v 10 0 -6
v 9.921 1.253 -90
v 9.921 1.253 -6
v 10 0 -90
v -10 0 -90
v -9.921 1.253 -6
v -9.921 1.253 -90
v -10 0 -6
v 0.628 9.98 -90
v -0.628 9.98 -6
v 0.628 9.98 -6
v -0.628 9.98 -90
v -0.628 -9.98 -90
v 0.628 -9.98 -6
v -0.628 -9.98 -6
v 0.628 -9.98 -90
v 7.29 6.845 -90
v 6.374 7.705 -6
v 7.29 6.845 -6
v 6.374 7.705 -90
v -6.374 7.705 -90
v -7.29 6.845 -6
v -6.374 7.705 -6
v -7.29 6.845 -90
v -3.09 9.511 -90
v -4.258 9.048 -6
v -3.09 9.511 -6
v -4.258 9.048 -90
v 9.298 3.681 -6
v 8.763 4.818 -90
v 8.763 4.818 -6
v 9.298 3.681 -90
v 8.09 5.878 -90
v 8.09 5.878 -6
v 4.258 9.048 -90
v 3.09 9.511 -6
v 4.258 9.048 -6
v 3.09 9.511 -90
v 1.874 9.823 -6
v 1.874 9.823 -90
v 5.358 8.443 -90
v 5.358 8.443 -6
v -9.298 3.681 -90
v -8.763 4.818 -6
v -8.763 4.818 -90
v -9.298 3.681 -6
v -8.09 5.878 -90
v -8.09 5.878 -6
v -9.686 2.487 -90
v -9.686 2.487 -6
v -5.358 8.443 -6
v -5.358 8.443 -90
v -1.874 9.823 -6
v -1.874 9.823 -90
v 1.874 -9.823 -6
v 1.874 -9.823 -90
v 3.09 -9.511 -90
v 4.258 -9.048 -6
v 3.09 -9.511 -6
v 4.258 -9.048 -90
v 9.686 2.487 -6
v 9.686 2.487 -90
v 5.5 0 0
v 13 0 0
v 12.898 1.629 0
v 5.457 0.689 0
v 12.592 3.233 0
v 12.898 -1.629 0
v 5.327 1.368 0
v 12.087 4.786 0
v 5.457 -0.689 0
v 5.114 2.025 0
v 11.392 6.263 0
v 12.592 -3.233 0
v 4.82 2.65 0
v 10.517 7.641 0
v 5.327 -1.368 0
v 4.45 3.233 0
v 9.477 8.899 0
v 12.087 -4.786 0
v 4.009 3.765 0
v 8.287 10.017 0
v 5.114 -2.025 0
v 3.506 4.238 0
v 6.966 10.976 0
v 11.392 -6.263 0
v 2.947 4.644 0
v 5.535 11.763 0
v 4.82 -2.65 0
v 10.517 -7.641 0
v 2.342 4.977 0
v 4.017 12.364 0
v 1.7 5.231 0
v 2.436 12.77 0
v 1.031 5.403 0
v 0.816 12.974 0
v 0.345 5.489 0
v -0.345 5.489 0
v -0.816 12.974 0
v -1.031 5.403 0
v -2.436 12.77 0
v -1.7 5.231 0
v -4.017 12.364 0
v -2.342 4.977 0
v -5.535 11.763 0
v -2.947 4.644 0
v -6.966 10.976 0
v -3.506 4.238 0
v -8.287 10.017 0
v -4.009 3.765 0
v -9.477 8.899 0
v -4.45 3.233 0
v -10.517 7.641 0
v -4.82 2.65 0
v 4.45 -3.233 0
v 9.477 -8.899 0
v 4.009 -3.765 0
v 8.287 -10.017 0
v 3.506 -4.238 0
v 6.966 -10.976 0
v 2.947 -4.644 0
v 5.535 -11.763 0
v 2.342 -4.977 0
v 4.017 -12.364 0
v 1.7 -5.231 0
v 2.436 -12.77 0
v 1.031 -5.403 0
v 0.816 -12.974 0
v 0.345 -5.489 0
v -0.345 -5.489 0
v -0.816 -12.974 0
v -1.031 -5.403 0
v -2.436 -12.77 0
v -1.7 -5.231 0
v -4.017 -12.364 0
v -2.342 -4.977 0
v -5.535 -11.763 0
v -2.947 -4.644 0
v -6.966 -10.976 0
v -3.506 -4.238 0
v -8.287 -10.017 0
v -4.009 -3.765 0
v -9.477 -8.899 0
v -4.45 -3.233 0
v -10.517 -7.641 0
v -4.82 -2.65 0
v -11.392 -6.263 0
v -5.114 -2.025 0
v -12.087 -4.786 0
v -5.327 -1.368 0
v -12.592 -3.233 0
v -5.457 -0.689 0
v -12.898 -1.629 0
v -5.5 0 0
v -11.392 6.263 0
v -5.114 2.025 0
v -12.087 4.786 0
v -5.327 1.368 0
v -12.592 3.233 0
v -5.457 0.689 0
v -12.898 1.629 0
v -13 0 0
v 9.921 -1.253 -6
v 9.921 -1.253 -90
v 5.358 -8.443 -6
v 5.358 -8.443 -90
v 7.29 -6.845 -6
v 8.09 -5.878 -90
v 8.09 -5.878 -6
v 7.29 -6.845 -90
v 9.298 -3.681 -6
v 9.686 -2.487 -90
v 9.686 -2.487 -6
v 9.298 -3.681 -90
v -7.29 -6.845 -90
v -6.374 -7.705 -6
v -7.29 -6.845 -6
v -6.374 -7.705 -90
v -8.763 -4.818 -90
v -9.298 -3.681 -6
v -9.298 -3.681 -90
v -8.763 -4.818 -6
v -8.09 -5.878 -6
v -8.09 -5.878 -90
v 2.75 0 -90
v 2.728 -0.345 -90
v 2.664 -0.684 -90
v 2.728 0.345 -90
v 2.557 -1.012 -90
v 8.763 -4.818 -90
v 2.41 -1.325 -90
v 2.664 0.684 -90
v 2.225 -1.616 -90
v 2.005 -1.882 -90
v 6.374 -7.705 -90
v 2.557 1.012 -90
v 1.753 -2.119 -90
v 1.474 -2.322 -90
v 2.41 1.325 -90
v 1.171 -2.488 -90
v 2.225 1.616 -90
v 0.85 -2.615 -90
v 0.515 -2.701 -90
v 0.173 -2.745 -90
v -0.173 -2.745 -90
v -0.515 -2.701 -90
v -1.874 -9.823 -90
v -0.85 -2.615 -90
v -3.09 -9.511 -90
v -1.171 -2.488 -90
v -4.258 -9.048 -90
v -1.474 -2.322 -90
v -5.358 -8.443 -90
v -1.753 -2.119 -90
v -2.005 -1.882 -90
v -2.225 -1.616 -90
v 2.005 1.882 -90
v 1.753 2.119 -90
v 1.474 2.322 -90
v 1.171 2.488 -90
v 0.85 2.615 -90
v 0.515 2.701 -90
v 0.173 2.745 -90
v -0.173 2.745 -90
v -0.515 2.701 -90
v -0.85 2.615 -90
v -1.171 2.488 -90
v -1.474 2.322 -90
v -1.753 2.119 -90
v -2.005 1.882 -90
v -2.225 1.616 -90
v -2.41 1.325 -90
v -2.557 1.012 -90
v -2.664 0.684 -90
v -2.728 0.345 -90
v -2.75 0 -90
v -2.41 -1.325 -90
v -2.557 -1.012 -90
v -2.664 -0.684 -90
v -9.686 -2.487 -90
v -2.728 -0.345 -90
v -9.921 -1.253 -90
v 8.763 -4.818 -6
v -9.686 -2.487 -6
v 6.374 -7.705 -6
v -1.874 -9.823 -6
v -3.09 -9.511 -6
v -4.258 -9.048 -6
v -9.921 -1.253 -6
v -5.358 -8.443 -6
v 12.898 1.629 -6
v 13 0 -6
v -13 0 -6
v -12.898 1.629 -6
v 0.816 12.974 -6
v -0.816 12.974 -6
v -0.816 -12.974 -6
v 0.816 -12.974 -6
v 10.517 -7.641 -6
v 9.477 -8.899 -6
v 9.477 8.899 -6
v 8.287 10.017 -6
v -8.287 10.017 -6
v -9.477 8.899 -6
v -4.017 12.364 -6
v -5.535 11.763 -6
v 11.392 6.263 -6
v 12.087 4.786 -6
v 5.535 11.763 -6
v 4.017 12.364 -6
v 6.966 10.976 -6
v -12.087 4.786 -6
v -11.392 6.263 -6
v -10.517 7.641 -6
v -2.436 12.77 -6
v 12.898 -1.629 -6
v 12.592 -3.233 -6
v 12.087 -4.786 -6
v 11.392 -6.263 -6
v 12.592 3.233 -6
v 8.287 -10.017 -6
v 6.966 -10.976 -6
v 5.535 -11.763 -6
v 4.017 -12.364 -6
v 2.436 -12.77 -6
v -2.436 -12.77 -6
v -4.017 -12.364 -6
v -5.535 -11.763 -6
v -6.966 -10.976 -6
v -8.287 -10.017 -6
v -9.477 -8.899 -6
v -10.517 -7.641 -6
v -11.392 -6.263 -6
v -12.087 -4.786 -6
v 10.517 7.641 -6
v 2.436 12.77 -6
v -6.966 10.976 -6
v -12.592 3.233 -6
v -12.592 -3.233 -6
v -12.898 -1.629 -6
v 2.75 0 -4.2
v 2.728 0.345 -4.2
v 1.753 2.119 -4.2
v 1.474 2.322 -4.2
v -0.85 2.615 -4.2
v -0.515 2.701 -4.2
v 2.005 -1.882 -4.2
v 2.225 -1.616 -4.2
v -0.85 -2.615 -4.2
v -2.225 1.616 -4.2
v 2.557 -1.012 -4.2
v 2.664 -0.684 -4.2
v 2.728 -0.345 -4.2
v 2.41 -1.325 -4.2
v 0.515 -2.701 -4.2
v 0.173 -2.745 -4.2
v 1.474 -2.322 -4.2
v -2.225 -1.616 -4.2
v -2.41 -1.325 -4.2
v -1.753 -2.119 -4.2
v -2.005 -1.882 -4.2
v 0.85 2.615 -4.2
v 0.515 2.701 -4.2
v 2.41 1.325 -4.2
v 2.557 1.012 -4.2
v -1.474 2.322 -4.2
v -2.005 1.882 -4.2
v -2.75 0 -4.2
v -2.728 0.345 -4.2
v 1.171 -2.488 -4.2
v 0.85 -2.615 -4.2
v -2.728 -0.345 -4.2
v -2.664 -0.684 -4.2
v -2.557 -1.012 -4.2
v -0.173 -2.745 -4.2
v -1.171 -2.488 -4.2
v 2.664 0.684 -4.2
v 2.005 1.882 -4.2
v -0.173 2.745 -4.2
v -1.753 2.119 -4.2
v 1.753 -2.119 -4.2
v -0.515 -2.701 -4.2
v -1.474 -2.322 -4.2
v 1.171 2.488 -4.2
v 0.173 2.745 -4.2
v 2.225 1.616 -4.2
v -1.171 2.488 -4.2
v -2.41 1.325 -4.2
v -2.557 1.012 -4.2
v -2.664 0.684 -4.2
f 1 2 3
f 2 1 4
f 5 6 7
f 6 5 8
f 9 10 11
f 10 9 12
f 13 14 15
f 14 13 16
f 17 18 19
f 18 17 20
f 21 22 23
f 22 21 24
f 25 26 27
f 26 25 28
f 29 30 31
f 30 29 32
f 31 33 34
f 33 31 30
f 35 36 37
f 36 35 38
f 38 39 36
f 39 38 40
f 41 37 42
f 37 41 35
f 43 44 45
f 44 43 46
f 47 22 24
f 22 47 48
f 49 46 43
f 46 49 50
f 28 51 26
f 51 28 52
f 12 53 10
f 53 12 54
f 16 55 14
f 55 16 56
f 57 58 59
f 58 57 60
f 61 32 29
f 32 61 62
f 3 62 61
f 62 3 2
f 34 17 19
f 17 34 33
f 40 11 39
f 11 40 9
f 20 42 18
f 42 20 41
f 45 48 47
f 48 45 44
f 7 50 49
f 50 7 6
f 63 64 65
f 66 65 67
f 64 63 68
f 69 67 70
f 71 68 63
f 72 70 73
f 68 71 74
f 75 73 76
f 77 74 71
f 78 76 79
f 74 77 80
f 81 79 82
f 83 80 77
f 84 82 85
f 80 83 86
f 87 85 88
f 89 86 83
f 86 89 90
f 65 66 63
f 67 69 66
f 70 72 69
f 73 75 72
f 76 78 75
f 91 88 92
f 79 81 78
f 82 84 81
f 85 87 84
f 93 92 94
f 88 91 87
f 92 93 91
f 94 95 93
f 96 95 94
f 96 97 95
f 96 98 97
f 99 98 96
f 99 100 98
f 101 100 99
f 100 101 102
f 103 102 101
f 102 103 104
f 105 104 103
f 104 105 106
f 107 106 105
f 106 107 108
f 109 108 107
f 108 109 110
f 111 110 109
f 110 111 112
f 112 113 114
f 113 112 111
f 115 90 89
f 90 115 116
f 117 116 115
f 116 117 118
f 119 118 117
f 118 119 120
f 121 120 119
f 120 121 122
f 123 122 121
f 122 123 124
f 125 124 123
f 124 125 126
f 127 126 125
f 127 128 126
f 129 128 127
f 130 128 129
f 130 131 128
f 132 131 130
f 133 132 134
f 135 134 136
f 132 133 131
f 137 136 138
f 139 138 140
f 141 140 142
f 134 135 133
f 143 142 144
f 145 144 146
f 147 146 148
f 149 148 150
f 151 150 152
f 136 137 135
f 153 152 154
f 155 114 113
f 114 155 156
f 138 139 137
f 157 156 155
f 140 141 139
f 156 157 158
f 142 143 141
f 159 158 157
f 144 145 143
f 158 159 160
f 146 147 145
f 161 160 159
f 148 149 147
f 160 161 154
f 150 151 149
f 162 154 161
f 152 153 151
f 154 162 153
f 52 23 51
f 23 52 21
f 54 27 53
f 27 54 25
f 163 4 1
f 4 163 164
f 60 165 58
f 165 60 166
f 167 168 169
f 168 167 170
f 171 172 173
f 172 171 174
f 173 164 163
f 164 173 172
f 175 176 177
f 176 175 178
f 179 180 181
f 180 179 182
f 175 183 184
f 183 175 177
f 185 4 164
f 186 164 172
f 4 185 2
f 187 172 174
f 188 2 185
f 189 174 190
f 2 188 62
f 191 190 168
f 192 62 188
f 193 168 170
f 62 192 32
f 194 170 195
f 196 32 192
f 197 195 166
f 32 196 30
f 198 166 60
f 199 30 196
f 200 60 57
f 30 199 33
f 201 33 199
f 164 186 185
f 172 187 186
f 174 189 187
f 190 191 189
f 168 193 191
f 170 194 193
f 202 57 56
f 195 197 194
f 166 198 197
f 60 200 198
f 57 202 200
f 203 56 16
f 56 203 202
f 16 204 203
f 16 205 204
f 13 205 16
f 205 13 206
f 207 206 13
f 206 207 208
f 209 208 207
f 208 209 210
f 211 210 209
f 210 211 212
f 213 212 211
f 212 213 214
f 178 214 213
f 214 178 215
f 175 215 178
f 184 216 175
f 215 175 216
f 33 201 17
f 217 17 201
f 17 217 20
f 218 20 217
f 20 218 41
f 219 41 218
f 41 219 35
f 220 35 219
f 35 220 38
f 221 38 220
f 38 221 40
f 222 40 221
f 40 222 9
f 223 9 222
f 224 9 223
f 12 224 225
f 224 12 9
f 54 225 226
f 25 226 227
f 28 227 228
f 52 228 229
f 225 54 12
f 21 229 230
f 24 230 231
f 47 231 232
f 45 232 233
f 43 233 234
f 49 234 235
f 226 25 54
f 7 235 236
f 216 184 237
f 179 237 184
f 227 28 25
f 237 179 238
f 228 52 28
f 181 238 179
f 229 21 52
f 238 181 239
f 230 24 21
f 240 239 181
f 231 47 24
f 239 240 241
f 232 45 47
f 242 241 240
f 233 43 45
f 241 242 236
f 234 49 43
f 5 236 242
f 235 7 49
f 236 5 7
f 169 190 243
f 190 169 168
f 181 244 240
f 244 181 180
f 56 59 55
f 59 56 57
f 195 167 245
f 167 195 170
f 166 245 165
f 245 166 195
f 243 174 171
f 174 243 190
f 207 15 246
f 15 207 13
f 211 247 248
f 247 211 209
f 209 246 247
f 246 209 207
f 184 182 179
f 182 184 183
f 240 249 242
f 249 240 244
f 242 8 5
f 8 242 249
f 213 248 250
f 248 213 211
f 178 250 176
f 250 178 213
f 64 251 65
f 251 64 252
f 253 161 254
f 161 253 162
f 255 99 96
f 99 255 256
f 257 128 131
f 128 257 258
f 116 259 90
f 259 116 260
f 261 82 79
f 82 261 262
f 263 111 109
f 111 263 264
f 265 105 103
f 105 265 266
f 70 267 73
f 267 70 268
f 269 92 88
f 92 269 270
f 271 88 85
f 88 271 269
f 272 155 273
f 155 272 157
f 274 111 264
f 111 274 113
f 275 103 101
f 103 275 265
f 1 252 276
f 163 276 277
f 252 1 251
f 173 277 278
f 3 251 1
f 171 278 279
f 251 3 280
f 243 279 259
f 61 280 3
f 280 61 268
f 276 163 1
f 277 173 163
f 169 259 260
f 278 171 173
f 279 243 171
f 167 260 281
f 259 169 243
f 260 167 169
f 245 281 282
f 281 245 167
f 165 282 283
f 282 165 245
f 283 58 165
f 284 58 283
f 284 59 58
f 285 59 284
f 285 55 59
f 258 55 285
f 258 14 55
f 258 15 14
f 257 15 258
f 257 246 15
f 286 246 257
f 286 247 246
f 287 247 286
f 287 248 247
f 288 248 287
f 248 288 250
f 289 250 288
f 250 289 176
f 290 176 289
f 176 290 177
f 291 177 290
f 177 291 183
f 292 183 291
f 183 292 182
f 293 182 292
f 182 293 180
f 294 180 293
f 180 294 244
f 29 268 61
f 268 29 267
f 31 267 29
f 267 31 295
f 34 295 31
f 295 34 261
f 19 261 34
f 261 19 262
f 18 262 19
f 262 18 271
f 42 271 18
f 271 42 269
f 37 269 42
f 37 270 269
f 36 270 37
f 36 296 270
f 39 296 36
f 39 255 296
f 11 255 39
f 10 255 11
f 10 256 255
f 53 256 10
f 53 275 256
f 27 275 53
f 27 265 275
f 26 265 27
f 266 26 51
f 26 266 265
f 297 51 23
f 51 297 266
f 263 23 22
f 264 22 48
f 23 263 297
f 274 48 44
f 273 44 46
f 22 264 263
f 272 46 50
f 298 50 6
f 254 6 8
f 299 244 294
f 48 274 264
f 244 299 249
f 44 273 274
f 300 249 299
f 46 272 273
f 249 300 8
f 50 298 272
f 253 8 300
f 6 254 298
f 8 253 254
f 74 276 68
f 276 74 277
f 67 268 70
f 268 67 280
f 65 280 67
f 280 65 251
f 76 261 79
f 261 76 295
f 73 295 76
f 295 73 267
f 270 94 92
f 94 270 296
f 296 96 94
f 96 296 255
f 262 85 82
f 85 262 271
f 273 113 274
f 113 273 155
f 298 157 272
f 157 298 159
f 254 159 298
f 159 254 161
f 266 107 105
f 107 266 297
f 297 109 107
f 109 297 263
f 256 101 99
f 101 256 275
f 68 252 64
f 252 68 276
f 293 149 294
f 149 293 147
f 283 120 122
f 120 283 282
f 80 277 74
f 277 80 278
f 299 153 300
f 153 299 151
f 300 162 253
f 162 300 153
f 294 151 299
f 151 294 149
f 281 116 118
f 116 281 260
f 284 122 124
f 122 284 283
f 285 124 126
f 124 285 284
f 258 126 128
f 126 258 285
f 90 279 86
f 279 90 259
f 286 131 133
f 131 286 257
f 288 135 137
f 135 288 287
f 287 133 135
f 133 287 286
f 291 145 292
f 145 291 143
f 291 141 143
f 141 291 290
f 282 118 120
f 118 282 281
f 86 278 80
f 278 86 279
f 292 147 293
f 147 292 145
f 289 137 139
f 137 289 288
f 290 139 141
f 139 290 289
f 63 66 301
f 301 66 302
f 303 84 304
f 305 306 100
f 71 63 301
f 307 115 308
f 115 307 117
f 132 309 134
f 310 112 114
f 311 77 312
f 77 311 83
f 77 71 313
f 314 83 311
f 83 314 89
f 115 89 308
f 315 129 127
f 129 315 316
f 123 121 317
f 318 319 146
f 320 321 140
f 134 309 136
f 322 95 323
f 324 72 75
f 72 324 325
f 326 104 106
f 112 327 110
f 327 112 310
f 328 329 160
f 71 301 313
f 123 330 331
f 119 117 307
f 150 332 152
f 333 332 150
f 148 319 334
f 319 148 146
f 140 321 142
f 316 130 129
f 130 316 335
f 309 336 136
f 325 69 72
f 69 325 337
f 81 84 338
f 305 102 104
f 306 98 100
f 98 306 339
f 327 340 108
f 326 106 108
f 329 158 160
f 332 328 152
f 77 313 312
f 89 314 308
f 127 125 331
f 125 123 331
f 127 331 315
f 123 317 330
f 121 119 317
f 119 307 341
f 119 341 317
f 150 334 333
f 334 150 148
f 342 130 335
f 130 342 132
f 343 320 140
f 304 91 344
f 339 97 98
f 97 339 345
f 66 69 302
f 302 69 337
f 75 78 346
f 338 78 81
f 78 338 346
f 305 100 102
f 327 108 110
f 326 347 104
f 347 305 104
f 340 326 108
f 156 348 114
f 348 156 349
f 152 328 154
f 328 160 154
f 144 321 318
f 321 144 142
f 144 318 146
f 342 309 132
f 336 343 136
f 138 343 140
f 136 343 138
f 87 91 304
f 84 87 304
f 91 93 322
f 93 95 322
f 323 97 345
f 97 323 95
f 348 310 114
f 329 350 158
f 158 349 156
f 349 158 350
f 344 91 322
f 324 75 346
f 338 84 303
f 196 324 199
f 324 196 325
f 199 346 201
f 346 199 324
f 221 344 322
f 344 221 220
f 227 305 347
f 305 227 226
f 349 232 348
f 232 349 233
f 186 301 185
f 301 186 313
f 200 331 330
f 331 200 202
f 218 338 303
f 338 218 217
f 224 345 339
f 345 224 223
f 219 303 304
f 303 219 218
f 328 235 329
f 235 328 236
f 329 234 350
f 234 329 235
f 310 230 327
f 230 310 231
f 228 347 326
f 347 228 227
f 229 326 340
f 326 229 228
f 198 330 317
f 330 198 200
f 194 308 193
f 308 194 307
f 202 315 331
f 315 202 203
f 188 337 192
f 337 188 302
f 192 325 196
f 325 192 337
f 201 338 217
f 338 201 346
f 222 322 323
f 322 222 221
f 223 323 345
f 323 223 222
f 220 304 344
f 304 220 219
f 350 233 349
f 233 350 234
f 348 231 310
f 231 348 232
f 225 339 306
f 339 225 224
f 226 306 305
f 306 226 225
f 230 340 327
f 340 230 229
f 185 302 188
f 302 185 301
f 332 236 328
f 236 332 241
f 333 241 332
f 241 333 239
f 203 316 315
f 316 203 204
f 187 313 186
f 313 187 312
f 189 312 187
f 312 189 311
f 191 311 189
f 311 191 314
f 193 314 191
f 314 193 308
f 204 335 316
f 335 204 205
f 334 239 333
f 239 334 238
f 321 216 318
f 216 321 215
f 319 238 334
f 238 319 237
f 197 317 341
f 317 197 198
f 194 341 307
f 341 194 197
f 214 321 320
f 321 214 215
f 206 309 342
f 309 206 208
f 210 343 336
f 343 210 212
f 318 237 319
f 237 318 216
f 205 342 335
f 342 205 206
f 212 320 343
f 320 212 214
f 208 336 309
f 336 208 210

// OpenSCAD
$fn = 50;


difference() {
	union() {
		translate(v = [0, 0, -90.0000000000]) {
			cylinder(h = 90, r = 10.0000000000);
		}
		translate(v = [0, 0, -6.0000000000]) {
			cylinder(h = 6, r = 13.0000000000);
		}
	}
	union() {
		translate(v = [0, 0, 0]) {
			rotate(a = [0, 0, 0]) {
				difference() {
					union() {
						#translate(v = [0, 0, -90.0000000000]) {
							cylinder(h = 90, r = 2.2500000000);
						}
						#translate(v = [0, 0, -4.2000000000]) {
							cylinder(h = 4.2000000000, r1 = 2.7500000000, r2 = 5.5000000000);
						}
						#translate(v = [0, 0, -90.0000000000]) {
							cylinder(h = 90, r = 2.7500000000);
						}
						#translate(v = [0, 0, -90.0000000000]) {
							cylinder(h = 90, r = 2.2500000000);
						}
					}
					union();
				}
			}
		}
	}
}
